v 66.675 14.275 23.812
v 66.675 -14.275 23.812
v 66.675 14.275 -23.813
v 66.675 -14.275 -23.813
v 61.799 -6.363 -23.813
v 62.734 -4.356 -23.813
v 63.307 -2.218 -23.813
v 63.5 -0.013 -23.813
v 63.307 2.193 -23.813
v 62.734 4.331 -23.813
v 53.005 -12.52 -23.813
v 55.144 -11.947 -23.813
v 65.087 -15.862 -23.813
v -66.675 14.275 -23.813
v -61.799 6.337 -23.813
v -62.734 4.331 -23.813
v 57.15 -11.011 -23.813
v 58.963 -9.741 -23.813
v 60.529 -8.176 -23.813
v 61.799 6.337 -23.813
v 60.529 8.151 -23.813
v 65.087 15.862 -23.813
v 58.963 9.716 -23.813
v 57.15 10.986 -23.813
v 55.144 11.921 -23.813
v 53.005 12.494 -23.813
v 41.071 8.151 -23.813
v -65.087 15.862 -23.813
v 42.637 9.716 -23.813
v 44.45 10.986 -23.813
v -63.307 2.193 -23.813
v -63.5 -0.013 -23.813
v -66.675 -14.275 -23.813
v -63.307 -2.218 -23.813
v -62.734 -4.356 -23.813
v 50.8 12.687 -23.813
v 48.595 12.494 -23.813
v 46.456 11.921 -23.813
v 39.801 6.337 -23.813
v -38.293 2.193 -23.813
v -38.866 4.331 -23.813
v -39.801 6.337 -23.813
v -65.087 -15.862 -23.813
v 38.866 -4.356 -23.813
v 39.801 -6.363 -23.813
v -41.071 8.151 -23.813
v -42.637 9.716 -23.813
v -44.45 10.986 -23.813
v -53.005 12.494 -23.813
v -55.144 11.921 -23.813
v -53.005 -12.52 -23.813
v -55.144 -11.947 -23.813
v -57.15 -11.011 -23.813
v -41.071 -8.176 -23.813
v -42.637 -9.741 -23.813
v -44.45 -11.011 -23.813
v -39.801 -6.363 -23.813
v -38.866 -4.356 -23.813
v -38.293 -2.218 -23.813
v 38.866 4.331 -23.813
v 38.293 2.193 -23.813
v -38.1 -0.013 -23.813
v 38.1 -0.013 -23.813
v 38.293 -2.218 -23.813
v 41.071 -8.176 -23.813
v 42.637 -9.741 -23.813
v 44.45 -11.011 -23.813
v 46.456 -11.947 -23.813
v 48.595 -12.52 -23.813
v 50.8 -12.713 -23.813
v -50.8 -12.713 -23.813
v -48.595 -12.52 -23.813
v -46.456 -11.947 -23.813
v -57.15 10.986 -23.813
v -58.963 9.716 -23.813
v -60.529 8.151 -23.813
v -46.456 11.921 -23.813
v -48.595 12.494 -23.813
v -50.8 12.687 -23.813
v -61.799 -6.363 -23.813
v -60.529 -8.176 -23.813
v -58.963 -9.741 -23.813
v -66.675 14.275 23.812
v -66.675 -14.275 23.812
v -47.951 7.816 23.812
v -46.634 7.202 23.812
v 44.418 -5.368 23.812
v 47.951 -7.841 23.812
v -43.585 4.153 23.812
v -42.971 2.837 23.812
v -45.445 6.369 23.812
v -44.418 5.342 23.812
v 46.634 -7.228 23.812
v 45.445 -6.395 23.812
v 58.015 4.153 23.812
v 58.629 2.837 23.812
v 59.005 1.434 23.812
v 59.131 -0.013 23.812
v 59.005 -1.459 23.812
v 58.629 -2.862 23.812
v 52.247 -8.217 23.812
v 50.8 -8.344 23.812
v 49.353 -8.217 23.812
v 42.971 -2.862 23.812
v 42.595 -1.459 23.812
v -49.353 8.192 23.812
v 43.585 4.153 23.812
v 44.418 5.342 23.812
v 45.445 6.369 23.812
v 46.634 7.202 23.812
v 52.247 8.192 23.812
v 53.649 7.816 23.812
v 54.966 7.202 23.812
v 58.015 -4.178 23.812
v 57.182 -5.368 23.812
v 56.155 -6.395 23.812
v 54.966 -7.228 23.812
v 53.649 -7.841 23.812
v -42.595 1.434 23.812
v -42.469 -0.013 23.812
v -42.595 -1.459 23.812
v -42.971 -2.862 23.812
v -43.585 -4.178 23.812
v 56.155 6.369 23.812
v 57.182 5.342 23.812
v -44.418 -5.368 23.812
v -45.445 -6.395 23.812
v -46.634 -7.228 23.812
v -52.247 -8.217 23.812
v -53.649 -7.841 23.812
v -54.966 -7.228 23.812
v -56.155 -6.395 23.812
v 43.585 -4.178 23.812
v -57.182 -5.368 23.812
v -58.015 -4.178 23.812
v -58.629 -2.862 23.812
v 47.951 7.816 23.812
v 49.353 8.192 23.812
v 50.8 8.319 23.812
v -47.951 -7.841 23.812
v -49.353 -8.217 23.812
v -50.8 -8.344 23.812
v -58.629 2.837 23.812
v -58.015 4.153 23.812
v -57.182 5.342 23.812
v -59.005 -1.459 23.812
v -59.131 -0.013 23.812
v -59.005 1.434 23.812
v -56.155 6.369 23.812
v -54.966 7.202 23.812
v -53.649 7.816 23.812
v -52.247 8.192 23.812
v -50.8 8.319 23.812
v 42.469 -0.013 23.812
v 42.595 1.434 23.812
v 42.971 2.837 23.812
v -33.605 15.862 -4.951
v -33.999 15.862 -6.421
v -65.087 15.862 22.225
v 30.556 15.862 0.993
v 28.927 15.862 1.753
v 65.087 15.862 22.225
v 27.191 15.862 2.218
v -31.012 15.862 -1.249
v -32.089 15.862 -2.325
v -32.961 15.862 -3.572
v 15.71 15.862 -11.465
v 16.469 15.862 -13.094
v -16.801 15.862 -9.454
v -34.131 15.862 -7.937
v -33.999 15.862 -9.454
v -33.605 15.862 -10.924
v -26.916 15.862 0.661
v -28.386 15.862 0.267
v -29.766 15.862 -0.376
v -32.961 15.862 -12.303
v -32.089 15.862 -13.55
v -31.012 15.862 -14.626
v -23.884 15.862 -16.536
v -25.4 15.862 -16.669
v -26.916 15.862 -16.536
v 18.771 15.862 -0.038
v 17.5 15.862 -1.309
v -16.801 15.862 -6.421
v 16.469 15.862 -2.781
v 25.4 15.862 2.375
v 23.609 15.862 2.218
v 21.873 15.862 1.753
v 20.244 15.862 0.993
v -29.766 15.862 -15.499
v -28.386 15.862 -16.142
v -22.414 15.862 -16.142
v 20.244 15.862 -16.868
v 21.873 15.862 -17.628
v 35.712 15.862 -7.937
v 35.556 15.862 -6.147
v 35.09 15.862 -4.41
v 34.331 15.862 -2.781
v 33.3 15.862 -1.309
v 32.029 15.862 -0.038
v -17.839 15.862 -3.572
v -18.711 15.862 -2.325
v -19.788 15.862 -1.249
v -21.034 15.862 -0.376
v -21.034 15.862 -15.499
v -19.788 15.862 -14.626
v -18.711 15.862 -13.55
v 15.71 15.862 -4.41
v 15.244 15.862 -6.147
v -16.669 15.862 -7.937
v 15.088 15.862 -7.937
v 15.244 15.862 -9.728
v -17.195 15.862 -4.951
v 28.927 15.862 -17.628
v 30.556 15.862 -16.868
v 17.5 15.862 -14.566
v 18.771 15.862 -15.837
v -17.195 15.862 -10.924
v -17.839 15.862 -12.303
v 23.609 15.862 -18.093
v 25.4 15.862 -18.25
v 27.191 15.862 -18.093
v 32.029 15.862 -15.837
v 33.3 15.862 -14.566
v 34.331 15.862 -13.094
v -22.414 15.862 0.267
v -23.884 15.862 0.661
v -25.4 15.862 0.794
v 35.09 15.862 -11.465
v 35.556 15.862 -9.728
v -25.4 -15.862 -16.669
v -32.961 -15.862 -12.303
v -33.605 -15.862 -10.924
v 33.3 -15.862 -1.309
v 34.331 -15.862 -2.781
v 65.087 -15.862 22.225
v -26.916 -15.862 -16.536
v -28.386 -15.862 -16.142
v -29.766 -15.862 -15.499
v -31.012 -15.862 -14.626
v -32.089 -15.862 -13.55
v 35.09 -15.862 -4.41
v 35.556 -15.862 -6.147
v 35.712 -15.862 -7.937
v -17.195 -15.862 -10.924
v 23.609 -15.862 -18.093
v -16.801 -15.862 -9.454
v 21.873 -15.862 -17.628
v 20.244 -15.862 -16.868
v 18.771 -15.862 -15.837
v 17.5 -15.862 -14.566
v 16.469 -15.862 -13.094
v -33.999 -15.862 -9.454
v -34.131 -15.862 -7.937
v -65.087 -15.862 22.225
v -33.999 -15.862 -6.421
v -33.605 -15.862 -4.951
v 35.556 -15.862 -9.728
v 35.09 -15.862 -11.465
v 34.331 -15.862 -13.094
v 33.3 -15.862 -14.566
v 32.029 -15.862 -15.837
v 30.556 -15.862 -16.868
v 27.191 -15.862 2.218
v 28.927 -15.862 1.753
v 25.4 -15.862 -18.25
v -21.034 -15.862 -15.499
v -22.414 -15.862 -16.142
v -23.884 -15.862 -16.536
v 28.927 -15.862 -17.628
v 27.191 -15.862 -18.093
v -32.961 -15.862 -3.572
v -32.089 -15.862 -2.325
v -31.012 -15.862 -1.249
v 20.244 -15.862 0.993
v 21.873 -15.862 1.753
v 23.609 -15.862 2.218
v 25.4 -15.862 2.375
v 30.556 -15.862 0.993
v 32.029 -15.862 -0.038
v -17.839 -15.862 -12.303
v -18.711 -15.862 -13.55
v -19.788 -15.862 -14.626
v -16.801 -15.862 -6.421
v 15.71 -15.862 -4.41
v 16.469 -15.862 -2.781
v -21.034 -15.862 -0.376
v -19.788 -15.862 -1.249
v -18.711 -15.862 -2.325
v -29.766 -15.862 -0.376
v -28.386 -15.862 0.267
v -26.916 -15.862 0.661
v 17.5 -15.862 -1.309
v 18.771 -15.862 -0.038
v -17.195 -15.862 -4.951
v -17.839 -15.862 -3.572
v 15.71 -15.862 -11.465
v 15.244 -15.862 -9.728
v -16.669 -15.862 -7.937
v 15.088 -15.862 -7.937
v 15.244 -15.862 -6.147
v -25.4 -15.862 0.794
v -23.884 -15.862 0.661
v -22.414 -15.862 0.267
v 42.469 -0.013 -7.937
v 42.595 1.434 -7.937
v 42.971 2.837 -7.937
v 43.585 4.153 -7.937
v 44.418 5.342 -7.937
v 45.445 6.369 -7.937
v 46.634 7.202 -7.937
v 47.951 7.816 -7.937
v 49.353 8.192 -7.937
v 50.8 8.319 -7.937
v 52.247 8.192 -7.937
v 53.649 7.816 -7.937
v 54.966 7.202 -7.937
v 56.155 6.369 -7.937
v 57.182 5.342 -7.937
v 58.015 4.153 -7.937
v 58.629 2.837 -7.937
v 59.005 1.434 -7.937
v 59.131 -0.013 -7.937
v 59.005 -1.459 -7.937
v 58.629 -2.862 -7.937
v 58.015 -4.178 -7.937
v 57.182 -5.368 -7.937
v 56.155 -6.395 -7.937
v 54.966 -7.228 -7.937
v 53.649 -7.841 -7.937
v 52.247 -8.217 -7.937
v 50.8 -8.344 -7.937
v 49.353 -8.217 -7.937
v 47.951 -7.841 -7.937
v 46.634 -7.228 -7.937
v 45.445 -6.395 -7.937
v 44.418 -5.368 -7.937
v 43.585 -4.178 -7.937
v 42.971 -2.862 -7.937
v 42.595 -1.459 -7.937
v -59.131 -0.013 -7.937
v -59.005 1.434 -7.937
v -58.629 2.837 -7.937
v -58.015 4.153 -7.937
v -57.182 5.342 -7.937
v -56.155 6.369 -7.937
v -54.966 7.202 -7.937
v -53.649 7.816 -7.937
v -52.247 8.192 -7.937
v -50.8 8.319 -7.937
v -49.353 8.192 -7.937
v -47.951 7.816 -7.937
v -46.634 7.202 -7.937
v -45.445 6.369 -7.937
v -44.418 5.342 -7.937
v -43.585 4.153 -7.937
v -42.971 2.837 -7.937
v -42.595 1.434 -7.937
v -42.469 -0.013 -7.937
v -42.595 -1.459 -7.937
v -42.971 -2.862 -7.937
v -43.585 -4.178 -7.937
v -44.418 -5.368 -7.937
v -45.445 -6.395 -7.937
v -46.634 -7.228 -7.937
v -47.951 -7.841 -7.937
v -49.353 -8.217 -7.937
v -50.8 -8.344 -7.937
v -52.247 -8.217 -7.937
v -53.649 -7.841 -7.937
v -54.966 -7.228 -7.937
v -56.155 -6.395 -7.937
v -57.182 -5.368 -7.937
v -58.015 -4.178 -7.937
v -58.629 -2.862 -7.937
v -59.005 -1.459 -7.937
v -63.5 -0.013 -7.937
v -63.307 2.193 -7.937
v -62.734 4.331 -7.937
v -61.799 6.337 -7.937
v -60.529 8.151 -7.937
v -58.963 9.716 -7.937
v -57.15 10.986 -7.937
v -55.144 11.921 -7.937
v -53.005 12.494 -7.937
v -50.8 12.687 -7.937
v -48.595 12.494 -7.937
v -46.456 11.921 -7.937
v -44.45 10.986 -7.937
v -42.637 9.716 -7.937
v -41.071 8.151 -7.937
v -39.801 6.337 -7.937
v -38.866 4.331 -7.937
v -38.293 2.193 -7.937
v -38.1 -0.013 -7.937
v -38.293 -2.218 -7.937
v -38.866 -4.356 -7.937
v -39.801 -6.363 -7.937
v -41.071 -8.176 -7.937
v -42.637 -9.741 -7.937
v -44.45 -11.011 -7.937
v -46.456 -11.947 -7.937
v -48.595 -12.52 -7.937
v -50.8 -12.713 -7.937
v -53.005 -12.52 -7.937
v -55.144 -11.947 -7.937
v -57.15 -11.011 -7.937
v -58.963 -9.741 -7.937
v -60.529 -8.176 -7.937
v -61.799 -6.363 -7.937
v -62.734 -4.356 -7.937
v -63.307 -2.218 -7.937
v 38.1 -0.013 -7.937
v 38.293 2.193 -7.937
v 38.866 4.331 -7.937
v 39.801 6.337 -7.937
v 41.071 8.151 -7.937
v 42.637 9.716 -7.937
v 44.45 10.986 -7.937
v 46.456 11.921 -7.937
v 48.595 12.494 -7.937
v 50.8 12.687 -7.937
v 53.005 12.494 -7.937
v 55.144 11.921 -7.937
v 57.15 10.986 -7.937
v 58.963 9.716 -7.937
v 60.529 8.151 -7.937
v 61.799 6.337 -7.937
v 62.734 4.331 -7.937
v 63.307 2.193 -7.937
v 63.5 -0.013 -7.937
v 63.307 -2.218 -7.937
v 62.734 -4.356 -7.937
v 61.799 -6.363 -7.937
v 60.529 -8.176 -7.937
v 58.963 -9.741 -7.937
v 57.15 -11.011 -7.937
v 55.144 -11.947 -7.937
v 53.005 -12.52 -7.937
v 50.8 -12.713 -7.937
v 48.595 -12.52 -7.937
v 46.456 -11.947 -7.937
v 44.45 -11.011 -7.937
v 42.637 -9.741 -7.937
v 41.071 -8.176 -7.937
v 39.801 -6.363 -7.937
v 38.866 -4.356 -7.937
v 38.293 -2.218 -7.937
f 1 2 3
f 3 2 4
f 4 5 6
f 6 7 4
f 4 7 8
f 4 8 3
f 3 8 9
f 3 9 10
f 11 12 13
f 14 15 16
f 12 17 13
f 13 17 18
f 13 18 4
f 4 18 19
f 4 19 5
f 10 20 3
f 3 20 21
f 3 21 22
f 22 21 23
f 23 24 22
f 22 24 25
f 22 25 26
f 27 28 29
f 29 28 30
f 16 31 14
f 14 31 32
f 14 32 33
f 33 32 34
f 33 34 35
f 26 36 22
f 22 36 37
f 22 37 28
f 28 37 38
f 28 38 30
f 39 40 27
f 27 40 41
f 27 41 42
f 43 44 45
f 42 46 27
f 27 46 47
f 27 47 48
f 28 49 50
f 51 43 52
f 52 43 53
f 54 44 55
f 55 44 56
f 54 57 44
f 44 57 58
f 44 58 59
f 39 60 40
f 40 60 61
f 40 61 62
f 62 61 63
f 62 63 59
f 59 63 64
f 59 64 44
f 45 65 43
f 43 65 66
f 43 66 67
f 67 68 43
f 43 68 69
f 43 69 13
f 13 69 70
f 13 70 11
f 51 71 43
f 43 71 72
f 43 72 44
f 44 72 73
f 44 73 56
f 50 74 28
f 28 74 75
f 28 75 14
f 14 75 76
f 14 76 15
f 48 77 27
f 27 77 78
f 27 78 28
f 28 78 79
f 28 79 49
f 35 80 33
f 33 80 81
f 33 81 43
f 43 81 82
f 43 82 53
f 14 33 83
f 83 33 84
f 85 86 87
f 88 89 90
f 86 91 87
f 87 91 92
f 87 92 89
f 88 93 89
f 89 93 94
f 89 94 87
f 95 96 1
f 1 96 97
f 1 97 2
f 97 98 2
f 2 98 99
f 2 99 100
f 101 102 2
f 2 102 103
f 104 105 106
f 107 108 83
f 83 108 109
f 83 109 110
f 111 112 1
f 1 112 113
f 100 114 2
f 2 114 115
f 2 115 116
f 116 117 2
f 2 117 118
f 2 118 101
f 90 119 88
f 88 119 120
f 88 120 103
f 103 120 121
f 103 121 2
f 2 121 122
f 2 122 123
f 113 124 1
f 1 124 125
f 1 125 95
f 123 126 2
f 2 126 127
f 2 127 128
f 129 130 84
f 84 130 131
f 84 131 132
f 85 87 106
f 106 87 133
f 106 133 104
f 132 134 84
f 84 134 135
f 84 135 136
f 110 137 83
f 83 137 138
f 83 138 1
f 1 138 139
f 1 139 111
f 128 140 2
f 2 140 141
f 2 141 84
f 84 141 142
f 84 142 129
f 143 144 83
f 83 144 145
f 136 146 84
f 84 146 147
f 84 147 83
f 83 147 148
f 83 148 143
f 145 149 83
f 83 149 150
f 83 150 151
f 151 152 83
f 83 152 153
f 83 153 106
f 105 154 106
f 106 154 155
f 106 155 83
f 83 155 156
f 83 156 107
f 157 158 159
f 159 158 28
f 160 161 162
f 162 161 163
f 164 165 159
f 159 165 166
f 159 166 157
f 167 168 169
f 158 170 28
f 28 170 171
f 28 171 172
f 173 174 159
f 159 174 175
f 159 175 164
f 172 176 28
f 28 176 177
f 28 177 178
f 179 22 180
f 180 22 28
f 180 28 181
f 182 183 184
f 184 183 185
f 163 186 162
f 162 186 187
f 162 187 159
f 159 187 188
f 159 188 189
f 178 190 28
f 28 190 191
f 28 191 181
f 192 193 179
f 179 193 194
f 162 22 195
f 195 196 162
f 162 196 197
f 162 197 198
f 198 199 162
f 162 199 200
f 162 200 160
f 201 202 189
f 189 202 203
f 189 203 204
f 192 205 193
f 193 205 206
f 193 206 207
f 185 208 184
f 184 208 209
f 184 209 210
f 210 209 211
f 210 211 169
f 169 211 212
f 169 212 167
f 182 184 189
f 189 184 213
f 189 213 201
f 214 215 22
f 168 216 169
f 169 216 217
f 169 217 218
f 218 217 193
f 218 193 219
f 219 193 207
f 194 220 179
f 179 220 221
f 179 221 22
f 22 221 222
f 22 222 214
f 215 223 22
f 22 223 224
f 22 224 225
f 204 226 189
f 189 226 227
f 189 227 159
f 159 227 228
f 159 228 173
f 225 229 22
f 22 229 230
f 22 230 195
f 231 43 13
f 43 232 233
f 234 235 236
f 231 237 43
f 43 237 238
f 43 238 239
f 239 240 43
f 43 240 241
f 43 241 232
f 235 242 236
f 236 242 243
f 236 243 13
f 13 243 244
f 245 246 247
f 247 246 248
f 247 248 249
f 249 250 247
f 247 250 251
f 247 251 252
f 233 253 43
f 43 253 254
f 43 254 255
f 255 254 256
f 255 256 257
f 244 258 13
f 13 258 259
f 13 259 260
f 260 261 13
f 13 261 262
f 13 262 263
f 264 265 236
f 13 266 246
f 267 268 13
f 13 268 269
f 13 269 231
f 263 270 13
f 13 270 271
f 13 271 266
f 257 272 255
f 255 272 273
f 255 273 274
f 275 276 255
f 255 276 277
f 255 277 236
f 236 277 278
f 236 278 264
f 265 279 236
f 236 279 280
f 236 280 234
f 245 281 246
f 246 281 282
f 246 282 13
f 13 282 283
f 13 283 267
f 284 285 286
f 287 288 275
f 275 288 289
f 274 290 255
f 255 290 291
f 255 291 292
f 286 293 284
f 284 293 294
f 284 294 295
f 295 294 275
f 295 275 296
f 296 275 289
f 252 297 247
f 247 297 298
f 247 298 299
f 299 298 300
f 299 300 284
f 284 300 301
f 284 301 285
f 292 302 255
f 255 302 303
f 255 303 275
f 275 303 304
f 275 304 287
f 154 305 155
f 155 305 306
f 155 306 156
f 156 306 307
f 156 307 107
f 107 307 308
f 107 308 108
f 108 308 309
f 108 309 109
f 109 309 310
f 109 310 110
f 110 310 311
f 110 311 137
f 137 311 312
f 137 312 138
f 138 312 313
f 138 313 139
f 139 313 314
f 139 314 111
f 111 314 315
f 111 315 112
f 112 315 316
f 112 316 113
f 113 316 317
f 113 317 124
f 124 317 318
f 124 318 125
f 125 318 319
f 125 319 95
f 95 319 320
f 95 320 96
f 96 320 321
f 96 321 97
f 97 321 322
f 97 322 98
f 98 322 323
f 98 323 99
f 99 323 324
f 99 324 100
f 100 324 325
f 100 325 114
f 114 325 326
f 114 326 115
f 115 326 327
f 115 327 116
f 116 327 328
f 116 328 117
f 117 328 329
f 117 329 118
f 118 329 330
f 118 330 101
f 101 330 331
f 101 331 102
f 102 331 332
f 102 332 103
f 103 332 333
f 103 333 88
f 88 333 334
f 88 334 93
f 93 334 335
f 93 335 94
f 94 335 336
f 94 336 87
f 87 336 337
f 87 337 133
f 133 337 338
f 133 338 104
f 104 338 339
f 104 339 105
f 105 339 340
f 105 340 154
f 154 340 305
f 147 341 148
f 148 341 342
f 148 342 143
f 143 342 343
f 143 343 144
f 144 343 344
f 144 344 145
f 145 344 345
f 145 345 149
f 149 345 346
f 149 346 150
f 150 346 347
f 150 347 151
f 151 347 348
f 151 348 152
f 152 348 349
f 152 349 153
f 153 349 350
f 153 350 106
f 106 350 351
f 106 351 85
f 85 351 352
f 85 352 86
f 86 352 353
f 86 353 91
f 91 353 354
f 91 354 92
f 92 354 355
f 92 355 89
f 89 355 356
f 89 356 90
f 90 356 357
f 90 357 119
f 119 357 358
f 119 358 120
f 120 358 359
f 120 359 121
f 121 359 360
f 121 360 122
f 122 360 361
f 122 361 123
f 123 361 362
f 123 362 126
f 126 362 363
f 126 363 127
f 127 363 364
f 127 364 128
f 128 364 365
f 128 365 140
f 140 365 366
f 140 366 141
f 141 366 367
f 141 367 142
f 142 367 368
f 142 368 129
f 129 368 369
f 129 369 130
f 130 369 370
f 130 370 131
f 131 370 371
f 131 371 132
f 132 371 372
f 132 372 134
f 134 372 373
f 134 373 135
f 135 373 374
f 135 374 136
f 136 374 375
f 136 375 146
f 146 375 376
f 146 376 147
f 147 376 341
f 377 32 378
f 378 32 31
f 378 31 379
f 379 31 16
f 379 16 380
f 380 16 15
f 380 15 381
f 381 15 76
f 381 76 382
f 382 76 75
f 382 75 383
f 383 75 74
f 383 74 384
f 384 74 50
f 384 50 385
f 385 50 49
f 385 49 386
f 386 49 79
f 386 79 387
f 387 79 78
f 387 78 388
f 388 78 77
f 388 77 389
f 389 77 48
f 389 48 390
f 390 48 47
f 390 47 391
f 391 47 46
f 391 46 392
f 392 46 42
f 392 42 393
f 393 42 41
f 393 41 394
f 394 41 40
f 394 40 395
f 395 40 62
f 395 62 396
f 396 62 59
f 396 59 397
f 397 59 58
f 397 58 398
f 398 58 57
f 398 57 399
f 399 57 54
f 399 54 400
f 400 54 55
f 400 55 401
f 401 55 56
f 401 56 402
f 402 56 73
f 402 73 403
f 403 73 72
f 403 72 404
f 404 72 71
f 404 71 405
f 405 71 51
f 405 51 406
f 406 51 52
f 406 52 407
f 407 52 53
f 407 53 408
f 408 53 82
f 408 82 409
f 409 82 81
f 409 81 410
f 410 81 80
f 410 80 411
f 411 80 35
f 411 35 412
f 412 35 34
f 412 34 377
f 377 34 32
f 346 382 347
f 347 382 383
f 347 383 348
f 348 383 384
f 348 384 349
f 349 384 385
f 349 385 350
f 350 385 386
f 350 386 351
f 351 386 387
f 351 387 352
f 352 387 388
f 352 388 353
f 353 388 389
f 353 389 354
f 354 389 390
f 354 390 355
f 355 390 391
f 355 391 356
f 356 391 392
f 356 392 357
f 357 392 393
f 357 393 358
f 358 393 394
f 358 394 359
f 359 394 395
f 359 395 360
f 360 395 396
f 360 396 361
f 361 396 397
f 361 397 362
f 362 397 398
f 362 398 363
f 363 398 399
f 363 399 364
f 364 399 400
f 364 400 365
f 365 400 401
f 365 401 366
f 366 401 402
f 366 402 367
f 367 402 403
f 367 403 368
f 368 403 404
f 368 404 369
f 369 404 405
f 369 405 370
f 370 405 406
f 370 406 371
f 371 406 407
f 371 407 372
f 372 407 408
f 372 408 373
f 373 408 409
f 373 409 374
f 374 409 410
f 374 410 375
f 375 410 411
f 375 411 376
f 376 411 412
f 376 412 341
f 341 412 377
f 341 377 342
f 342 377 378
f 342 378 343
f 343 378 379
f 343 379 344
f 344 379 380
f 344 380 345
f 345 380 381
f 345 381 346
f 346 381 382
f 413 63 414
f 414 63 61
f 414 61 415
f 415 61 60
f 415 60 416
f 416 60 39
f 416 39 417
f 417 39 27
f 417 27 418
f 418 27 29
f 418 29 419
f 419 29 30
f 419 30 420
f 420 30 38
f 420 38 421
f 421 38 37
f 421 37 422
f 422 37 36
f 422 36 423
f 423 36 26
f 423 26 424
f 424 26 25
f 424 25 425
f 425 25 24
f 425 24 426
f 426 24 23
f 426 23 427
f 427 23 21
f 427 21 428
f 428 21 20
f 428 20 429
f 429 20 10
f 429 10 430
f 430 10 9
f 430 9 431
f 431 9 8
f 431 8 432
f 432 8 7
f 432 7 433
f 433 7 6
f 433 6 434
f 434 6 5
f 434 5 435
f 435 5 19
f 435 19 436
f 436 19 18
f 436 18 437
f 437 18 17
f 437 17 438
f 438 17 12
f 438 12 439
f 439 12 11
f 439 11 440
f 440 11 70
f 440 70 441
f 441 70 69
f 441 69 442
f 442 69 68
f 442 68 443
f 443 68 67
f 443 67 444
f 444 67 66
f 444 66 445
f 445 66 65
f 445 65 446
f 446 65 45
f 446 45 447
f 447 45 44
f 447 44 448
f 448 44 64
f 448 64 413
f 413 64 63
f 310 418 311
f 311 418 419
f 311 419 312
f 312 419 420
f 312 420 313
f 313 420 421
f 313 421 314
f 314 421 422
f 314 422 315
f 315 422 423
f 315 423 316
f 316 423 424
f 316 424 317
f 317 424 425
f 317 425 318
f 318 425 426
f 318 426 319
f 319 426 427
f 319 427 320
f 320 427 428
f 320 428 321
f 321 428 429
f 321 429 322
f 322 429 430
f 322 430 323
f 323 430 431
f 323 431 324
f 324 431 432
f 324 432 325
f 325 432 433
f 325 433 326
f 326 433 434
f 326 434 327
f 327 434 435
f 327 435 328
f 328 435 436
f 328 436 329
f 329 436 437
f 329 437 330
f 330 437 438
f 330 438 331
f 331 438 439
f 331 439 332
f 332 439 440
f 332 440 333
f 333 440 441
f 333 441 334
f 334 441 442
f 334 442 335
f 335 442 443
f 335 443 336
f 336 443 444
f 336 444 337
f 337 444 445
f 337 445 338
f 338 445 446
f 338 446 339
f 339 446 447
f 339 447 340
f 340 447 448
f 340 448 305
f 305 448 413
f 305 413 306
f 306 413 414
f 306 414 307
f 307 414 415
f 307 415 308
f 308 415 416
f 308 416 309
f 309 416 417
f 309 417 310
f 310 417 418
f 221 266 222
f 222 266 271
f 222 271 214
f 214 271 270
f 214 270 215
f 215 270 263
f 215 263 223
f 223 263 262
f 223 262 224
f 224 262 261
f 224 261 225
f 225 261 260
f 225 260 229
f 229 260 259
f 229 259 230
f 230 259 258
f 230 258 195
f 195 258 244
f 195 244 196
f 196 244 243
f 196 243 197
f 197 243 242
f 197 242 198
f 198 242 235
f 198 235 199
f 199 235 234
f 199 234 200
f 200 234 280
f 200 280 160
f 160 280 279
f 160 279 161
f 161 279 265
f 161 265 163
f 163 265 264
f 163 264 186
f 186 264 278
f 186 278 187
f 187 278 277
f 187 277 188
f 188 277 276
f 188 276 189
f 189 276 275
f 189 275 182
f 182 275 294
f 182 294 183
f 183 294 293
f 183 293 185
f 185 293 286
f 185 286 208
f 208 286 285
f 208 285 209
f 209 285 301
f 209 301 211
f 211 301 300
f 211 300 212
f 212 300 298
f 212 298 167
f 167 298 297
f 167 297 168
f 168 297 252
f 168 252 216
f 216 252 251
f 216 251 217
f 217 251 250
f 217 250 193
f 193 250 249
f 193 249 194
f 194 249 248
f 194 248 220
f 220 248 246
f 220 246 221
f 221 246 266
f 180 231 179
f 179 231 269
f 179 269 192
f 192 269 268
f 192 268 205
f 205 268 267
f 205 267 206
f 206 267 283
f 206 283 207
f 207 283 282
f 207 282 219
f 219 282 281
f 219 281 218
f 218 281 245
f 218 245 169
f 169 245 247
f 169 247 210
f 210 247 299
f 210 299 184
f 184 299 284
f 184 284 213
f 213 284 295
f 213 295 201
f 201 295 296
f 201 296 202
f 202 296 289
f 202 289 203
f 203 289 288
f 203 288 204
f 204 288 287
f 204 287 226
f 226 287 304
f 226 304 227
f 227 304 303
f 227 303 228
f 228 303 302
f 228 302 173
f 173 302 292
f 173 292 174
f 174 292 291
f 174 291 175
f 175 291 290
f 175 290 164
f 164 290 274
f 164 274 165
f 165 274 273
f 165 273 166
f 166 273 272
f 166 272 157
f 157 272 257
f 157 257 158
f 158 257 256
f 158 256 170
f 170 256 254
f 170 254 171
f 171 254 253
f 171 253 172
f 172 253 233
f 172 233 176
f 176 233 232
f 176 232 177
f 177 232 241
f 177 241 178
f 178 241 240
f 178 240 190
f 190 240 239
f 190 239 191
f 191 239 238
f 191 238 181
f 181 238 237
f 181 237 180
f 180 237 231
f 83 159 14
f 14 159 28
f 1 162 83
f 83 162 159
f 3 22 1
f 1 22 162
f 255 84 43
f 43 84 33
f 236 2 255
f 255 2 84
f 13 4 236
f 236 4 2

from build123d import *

# Parameters (mm, degrees)
SKETCH1_W                   = 133.35
SKETCH1_H                   = 47.625
BOSS_EXTRUDE1_DEPTH         = 15.8623
CUT_EXTRUDE2_START          = -23.8125
SKETCH2_R                   = 8.3312
CUT_EXTRUDE2_DEPTH          = 133.35
CUT_EXTRUDE4_START          = -23.8125
SKETCH3_R                   = 12.7
CUT_EXTRUDE4_DEPTH          = 15.875
CUT_EXTRUDE6_START          = -15.8623
SKETCH4_R                   = 10.3124
CUT_EXTRUDE6_DEPTH          = 89.417129905
F_3_4_16_TAPPED_HOLE1_D     = 17.4625
F_3_4_16_TAPPED_HOLE1_DEPTH = 31.7246
F_3_4_16_TAPPED_HOLE1_TIP   = 5.24626428
CHAMFER1_SIZE               = 1.5875


with BuildPart() as part:
    # Sketch1 → Boss-Extrude1 (new, symmetric)
    with BuildSketch(Plane(origin=(0, 0, 0), x_dir=(1, 0, 0), z_dir=(0, 1, 0))):
        Rectangle(SKETCH1_W, SKETCH1_H)
    extrude(amount=BOSS_EXTRUDE1_DEPTH, both=True)

    # Sketch2 → Cut-Extrude2 (cut)
    with BuildSketch(Plane.XY.offset(CUT_EXTRUDE2_START)):
        with Locations(Location((-50.8, -0.0127, 0), (0, 0, 180))):
            Circle(SKETCH2_R)
        with Locations(Location((50.8, -0.0127, 0), (0, 0, 180))):
            Circle(SKETCH2_R)
    extrude(amount=CUT_EXTRUDE2_DEPTH, mode=Mode.SUBTRACT)

    # Sketch3 → Cut-Extrude4 (cut)
    with BuildSketch(Plane.XY.offset(CUT_EXTRUDE4_START)):
        with Locations((-50.8, -0.0127)):
            Circle(SKETCH3_R)
        with Locations((50.8, -0.0127)):
            Circle(SKETCH3_R)
    extrude(amount=CUT_EXTRUDE4_DEPTH, mode=Mode.SUBTRACT)

    # Sketch4 → Cut-Extrude6 (cut, through all)
    with BuildSketch(Plane(origin=(0, 0, 0), x_dir=(1, 0, 0), z_dir=(0, 1, 0)).offset(CUT_EXTRUDE6_START)):
        with Locations(Location((25.4, 7.9375, 0), (0, 0, 270))):
            Circle(SKETCH4_R)
    extrude(amount=CUT_EXTRUDE6_DEPTH, mode=Mode.SUBTRACT)

    # 3/4-16 Tapped Hole1
    with Locations(Plane(origin=(0, -15.8623, 0), x_dir=(-1, 0, 0), z_dir=(0, -1, 0))):
        with Locations((25.4, 7.9375)):
            Hole(F_3_4_16_TAPPED_HOLE1_D / 2, depth=F_3_4_16_TAPPED_HOLE1_DEPTH)
            with Locations((0, 0, -(F_3_4_16_TAPPED_HOLE1_DEPTH + F_3_4_16_TAPPED_HOLE1_TIP / 2))):  # 118° drill point
                Cone(0, F_3_4_16_TAPPED_HOLE1_D / 2, F_3_4_16_TAPPED_HOLE1_TIP, mode=Mode.SUBTRACT)

    # Chamfer1
    chamfer1_edges = [part.edges().sort_by_distance(p)[0] for p in [
        (-66.675, 15.8623, 0),
        (0, 15.8623, 23.8125),
        (66.675, 15.8623, 0),
        (0, -15.8623, 23.8125),
        (-66.675, -15.8623, 0),
        (66.675, -15.8623, 0),
    ]]
    chamfer(chamfer1_edges, length=CHAMFER1_SIZE)


solid = part.part
